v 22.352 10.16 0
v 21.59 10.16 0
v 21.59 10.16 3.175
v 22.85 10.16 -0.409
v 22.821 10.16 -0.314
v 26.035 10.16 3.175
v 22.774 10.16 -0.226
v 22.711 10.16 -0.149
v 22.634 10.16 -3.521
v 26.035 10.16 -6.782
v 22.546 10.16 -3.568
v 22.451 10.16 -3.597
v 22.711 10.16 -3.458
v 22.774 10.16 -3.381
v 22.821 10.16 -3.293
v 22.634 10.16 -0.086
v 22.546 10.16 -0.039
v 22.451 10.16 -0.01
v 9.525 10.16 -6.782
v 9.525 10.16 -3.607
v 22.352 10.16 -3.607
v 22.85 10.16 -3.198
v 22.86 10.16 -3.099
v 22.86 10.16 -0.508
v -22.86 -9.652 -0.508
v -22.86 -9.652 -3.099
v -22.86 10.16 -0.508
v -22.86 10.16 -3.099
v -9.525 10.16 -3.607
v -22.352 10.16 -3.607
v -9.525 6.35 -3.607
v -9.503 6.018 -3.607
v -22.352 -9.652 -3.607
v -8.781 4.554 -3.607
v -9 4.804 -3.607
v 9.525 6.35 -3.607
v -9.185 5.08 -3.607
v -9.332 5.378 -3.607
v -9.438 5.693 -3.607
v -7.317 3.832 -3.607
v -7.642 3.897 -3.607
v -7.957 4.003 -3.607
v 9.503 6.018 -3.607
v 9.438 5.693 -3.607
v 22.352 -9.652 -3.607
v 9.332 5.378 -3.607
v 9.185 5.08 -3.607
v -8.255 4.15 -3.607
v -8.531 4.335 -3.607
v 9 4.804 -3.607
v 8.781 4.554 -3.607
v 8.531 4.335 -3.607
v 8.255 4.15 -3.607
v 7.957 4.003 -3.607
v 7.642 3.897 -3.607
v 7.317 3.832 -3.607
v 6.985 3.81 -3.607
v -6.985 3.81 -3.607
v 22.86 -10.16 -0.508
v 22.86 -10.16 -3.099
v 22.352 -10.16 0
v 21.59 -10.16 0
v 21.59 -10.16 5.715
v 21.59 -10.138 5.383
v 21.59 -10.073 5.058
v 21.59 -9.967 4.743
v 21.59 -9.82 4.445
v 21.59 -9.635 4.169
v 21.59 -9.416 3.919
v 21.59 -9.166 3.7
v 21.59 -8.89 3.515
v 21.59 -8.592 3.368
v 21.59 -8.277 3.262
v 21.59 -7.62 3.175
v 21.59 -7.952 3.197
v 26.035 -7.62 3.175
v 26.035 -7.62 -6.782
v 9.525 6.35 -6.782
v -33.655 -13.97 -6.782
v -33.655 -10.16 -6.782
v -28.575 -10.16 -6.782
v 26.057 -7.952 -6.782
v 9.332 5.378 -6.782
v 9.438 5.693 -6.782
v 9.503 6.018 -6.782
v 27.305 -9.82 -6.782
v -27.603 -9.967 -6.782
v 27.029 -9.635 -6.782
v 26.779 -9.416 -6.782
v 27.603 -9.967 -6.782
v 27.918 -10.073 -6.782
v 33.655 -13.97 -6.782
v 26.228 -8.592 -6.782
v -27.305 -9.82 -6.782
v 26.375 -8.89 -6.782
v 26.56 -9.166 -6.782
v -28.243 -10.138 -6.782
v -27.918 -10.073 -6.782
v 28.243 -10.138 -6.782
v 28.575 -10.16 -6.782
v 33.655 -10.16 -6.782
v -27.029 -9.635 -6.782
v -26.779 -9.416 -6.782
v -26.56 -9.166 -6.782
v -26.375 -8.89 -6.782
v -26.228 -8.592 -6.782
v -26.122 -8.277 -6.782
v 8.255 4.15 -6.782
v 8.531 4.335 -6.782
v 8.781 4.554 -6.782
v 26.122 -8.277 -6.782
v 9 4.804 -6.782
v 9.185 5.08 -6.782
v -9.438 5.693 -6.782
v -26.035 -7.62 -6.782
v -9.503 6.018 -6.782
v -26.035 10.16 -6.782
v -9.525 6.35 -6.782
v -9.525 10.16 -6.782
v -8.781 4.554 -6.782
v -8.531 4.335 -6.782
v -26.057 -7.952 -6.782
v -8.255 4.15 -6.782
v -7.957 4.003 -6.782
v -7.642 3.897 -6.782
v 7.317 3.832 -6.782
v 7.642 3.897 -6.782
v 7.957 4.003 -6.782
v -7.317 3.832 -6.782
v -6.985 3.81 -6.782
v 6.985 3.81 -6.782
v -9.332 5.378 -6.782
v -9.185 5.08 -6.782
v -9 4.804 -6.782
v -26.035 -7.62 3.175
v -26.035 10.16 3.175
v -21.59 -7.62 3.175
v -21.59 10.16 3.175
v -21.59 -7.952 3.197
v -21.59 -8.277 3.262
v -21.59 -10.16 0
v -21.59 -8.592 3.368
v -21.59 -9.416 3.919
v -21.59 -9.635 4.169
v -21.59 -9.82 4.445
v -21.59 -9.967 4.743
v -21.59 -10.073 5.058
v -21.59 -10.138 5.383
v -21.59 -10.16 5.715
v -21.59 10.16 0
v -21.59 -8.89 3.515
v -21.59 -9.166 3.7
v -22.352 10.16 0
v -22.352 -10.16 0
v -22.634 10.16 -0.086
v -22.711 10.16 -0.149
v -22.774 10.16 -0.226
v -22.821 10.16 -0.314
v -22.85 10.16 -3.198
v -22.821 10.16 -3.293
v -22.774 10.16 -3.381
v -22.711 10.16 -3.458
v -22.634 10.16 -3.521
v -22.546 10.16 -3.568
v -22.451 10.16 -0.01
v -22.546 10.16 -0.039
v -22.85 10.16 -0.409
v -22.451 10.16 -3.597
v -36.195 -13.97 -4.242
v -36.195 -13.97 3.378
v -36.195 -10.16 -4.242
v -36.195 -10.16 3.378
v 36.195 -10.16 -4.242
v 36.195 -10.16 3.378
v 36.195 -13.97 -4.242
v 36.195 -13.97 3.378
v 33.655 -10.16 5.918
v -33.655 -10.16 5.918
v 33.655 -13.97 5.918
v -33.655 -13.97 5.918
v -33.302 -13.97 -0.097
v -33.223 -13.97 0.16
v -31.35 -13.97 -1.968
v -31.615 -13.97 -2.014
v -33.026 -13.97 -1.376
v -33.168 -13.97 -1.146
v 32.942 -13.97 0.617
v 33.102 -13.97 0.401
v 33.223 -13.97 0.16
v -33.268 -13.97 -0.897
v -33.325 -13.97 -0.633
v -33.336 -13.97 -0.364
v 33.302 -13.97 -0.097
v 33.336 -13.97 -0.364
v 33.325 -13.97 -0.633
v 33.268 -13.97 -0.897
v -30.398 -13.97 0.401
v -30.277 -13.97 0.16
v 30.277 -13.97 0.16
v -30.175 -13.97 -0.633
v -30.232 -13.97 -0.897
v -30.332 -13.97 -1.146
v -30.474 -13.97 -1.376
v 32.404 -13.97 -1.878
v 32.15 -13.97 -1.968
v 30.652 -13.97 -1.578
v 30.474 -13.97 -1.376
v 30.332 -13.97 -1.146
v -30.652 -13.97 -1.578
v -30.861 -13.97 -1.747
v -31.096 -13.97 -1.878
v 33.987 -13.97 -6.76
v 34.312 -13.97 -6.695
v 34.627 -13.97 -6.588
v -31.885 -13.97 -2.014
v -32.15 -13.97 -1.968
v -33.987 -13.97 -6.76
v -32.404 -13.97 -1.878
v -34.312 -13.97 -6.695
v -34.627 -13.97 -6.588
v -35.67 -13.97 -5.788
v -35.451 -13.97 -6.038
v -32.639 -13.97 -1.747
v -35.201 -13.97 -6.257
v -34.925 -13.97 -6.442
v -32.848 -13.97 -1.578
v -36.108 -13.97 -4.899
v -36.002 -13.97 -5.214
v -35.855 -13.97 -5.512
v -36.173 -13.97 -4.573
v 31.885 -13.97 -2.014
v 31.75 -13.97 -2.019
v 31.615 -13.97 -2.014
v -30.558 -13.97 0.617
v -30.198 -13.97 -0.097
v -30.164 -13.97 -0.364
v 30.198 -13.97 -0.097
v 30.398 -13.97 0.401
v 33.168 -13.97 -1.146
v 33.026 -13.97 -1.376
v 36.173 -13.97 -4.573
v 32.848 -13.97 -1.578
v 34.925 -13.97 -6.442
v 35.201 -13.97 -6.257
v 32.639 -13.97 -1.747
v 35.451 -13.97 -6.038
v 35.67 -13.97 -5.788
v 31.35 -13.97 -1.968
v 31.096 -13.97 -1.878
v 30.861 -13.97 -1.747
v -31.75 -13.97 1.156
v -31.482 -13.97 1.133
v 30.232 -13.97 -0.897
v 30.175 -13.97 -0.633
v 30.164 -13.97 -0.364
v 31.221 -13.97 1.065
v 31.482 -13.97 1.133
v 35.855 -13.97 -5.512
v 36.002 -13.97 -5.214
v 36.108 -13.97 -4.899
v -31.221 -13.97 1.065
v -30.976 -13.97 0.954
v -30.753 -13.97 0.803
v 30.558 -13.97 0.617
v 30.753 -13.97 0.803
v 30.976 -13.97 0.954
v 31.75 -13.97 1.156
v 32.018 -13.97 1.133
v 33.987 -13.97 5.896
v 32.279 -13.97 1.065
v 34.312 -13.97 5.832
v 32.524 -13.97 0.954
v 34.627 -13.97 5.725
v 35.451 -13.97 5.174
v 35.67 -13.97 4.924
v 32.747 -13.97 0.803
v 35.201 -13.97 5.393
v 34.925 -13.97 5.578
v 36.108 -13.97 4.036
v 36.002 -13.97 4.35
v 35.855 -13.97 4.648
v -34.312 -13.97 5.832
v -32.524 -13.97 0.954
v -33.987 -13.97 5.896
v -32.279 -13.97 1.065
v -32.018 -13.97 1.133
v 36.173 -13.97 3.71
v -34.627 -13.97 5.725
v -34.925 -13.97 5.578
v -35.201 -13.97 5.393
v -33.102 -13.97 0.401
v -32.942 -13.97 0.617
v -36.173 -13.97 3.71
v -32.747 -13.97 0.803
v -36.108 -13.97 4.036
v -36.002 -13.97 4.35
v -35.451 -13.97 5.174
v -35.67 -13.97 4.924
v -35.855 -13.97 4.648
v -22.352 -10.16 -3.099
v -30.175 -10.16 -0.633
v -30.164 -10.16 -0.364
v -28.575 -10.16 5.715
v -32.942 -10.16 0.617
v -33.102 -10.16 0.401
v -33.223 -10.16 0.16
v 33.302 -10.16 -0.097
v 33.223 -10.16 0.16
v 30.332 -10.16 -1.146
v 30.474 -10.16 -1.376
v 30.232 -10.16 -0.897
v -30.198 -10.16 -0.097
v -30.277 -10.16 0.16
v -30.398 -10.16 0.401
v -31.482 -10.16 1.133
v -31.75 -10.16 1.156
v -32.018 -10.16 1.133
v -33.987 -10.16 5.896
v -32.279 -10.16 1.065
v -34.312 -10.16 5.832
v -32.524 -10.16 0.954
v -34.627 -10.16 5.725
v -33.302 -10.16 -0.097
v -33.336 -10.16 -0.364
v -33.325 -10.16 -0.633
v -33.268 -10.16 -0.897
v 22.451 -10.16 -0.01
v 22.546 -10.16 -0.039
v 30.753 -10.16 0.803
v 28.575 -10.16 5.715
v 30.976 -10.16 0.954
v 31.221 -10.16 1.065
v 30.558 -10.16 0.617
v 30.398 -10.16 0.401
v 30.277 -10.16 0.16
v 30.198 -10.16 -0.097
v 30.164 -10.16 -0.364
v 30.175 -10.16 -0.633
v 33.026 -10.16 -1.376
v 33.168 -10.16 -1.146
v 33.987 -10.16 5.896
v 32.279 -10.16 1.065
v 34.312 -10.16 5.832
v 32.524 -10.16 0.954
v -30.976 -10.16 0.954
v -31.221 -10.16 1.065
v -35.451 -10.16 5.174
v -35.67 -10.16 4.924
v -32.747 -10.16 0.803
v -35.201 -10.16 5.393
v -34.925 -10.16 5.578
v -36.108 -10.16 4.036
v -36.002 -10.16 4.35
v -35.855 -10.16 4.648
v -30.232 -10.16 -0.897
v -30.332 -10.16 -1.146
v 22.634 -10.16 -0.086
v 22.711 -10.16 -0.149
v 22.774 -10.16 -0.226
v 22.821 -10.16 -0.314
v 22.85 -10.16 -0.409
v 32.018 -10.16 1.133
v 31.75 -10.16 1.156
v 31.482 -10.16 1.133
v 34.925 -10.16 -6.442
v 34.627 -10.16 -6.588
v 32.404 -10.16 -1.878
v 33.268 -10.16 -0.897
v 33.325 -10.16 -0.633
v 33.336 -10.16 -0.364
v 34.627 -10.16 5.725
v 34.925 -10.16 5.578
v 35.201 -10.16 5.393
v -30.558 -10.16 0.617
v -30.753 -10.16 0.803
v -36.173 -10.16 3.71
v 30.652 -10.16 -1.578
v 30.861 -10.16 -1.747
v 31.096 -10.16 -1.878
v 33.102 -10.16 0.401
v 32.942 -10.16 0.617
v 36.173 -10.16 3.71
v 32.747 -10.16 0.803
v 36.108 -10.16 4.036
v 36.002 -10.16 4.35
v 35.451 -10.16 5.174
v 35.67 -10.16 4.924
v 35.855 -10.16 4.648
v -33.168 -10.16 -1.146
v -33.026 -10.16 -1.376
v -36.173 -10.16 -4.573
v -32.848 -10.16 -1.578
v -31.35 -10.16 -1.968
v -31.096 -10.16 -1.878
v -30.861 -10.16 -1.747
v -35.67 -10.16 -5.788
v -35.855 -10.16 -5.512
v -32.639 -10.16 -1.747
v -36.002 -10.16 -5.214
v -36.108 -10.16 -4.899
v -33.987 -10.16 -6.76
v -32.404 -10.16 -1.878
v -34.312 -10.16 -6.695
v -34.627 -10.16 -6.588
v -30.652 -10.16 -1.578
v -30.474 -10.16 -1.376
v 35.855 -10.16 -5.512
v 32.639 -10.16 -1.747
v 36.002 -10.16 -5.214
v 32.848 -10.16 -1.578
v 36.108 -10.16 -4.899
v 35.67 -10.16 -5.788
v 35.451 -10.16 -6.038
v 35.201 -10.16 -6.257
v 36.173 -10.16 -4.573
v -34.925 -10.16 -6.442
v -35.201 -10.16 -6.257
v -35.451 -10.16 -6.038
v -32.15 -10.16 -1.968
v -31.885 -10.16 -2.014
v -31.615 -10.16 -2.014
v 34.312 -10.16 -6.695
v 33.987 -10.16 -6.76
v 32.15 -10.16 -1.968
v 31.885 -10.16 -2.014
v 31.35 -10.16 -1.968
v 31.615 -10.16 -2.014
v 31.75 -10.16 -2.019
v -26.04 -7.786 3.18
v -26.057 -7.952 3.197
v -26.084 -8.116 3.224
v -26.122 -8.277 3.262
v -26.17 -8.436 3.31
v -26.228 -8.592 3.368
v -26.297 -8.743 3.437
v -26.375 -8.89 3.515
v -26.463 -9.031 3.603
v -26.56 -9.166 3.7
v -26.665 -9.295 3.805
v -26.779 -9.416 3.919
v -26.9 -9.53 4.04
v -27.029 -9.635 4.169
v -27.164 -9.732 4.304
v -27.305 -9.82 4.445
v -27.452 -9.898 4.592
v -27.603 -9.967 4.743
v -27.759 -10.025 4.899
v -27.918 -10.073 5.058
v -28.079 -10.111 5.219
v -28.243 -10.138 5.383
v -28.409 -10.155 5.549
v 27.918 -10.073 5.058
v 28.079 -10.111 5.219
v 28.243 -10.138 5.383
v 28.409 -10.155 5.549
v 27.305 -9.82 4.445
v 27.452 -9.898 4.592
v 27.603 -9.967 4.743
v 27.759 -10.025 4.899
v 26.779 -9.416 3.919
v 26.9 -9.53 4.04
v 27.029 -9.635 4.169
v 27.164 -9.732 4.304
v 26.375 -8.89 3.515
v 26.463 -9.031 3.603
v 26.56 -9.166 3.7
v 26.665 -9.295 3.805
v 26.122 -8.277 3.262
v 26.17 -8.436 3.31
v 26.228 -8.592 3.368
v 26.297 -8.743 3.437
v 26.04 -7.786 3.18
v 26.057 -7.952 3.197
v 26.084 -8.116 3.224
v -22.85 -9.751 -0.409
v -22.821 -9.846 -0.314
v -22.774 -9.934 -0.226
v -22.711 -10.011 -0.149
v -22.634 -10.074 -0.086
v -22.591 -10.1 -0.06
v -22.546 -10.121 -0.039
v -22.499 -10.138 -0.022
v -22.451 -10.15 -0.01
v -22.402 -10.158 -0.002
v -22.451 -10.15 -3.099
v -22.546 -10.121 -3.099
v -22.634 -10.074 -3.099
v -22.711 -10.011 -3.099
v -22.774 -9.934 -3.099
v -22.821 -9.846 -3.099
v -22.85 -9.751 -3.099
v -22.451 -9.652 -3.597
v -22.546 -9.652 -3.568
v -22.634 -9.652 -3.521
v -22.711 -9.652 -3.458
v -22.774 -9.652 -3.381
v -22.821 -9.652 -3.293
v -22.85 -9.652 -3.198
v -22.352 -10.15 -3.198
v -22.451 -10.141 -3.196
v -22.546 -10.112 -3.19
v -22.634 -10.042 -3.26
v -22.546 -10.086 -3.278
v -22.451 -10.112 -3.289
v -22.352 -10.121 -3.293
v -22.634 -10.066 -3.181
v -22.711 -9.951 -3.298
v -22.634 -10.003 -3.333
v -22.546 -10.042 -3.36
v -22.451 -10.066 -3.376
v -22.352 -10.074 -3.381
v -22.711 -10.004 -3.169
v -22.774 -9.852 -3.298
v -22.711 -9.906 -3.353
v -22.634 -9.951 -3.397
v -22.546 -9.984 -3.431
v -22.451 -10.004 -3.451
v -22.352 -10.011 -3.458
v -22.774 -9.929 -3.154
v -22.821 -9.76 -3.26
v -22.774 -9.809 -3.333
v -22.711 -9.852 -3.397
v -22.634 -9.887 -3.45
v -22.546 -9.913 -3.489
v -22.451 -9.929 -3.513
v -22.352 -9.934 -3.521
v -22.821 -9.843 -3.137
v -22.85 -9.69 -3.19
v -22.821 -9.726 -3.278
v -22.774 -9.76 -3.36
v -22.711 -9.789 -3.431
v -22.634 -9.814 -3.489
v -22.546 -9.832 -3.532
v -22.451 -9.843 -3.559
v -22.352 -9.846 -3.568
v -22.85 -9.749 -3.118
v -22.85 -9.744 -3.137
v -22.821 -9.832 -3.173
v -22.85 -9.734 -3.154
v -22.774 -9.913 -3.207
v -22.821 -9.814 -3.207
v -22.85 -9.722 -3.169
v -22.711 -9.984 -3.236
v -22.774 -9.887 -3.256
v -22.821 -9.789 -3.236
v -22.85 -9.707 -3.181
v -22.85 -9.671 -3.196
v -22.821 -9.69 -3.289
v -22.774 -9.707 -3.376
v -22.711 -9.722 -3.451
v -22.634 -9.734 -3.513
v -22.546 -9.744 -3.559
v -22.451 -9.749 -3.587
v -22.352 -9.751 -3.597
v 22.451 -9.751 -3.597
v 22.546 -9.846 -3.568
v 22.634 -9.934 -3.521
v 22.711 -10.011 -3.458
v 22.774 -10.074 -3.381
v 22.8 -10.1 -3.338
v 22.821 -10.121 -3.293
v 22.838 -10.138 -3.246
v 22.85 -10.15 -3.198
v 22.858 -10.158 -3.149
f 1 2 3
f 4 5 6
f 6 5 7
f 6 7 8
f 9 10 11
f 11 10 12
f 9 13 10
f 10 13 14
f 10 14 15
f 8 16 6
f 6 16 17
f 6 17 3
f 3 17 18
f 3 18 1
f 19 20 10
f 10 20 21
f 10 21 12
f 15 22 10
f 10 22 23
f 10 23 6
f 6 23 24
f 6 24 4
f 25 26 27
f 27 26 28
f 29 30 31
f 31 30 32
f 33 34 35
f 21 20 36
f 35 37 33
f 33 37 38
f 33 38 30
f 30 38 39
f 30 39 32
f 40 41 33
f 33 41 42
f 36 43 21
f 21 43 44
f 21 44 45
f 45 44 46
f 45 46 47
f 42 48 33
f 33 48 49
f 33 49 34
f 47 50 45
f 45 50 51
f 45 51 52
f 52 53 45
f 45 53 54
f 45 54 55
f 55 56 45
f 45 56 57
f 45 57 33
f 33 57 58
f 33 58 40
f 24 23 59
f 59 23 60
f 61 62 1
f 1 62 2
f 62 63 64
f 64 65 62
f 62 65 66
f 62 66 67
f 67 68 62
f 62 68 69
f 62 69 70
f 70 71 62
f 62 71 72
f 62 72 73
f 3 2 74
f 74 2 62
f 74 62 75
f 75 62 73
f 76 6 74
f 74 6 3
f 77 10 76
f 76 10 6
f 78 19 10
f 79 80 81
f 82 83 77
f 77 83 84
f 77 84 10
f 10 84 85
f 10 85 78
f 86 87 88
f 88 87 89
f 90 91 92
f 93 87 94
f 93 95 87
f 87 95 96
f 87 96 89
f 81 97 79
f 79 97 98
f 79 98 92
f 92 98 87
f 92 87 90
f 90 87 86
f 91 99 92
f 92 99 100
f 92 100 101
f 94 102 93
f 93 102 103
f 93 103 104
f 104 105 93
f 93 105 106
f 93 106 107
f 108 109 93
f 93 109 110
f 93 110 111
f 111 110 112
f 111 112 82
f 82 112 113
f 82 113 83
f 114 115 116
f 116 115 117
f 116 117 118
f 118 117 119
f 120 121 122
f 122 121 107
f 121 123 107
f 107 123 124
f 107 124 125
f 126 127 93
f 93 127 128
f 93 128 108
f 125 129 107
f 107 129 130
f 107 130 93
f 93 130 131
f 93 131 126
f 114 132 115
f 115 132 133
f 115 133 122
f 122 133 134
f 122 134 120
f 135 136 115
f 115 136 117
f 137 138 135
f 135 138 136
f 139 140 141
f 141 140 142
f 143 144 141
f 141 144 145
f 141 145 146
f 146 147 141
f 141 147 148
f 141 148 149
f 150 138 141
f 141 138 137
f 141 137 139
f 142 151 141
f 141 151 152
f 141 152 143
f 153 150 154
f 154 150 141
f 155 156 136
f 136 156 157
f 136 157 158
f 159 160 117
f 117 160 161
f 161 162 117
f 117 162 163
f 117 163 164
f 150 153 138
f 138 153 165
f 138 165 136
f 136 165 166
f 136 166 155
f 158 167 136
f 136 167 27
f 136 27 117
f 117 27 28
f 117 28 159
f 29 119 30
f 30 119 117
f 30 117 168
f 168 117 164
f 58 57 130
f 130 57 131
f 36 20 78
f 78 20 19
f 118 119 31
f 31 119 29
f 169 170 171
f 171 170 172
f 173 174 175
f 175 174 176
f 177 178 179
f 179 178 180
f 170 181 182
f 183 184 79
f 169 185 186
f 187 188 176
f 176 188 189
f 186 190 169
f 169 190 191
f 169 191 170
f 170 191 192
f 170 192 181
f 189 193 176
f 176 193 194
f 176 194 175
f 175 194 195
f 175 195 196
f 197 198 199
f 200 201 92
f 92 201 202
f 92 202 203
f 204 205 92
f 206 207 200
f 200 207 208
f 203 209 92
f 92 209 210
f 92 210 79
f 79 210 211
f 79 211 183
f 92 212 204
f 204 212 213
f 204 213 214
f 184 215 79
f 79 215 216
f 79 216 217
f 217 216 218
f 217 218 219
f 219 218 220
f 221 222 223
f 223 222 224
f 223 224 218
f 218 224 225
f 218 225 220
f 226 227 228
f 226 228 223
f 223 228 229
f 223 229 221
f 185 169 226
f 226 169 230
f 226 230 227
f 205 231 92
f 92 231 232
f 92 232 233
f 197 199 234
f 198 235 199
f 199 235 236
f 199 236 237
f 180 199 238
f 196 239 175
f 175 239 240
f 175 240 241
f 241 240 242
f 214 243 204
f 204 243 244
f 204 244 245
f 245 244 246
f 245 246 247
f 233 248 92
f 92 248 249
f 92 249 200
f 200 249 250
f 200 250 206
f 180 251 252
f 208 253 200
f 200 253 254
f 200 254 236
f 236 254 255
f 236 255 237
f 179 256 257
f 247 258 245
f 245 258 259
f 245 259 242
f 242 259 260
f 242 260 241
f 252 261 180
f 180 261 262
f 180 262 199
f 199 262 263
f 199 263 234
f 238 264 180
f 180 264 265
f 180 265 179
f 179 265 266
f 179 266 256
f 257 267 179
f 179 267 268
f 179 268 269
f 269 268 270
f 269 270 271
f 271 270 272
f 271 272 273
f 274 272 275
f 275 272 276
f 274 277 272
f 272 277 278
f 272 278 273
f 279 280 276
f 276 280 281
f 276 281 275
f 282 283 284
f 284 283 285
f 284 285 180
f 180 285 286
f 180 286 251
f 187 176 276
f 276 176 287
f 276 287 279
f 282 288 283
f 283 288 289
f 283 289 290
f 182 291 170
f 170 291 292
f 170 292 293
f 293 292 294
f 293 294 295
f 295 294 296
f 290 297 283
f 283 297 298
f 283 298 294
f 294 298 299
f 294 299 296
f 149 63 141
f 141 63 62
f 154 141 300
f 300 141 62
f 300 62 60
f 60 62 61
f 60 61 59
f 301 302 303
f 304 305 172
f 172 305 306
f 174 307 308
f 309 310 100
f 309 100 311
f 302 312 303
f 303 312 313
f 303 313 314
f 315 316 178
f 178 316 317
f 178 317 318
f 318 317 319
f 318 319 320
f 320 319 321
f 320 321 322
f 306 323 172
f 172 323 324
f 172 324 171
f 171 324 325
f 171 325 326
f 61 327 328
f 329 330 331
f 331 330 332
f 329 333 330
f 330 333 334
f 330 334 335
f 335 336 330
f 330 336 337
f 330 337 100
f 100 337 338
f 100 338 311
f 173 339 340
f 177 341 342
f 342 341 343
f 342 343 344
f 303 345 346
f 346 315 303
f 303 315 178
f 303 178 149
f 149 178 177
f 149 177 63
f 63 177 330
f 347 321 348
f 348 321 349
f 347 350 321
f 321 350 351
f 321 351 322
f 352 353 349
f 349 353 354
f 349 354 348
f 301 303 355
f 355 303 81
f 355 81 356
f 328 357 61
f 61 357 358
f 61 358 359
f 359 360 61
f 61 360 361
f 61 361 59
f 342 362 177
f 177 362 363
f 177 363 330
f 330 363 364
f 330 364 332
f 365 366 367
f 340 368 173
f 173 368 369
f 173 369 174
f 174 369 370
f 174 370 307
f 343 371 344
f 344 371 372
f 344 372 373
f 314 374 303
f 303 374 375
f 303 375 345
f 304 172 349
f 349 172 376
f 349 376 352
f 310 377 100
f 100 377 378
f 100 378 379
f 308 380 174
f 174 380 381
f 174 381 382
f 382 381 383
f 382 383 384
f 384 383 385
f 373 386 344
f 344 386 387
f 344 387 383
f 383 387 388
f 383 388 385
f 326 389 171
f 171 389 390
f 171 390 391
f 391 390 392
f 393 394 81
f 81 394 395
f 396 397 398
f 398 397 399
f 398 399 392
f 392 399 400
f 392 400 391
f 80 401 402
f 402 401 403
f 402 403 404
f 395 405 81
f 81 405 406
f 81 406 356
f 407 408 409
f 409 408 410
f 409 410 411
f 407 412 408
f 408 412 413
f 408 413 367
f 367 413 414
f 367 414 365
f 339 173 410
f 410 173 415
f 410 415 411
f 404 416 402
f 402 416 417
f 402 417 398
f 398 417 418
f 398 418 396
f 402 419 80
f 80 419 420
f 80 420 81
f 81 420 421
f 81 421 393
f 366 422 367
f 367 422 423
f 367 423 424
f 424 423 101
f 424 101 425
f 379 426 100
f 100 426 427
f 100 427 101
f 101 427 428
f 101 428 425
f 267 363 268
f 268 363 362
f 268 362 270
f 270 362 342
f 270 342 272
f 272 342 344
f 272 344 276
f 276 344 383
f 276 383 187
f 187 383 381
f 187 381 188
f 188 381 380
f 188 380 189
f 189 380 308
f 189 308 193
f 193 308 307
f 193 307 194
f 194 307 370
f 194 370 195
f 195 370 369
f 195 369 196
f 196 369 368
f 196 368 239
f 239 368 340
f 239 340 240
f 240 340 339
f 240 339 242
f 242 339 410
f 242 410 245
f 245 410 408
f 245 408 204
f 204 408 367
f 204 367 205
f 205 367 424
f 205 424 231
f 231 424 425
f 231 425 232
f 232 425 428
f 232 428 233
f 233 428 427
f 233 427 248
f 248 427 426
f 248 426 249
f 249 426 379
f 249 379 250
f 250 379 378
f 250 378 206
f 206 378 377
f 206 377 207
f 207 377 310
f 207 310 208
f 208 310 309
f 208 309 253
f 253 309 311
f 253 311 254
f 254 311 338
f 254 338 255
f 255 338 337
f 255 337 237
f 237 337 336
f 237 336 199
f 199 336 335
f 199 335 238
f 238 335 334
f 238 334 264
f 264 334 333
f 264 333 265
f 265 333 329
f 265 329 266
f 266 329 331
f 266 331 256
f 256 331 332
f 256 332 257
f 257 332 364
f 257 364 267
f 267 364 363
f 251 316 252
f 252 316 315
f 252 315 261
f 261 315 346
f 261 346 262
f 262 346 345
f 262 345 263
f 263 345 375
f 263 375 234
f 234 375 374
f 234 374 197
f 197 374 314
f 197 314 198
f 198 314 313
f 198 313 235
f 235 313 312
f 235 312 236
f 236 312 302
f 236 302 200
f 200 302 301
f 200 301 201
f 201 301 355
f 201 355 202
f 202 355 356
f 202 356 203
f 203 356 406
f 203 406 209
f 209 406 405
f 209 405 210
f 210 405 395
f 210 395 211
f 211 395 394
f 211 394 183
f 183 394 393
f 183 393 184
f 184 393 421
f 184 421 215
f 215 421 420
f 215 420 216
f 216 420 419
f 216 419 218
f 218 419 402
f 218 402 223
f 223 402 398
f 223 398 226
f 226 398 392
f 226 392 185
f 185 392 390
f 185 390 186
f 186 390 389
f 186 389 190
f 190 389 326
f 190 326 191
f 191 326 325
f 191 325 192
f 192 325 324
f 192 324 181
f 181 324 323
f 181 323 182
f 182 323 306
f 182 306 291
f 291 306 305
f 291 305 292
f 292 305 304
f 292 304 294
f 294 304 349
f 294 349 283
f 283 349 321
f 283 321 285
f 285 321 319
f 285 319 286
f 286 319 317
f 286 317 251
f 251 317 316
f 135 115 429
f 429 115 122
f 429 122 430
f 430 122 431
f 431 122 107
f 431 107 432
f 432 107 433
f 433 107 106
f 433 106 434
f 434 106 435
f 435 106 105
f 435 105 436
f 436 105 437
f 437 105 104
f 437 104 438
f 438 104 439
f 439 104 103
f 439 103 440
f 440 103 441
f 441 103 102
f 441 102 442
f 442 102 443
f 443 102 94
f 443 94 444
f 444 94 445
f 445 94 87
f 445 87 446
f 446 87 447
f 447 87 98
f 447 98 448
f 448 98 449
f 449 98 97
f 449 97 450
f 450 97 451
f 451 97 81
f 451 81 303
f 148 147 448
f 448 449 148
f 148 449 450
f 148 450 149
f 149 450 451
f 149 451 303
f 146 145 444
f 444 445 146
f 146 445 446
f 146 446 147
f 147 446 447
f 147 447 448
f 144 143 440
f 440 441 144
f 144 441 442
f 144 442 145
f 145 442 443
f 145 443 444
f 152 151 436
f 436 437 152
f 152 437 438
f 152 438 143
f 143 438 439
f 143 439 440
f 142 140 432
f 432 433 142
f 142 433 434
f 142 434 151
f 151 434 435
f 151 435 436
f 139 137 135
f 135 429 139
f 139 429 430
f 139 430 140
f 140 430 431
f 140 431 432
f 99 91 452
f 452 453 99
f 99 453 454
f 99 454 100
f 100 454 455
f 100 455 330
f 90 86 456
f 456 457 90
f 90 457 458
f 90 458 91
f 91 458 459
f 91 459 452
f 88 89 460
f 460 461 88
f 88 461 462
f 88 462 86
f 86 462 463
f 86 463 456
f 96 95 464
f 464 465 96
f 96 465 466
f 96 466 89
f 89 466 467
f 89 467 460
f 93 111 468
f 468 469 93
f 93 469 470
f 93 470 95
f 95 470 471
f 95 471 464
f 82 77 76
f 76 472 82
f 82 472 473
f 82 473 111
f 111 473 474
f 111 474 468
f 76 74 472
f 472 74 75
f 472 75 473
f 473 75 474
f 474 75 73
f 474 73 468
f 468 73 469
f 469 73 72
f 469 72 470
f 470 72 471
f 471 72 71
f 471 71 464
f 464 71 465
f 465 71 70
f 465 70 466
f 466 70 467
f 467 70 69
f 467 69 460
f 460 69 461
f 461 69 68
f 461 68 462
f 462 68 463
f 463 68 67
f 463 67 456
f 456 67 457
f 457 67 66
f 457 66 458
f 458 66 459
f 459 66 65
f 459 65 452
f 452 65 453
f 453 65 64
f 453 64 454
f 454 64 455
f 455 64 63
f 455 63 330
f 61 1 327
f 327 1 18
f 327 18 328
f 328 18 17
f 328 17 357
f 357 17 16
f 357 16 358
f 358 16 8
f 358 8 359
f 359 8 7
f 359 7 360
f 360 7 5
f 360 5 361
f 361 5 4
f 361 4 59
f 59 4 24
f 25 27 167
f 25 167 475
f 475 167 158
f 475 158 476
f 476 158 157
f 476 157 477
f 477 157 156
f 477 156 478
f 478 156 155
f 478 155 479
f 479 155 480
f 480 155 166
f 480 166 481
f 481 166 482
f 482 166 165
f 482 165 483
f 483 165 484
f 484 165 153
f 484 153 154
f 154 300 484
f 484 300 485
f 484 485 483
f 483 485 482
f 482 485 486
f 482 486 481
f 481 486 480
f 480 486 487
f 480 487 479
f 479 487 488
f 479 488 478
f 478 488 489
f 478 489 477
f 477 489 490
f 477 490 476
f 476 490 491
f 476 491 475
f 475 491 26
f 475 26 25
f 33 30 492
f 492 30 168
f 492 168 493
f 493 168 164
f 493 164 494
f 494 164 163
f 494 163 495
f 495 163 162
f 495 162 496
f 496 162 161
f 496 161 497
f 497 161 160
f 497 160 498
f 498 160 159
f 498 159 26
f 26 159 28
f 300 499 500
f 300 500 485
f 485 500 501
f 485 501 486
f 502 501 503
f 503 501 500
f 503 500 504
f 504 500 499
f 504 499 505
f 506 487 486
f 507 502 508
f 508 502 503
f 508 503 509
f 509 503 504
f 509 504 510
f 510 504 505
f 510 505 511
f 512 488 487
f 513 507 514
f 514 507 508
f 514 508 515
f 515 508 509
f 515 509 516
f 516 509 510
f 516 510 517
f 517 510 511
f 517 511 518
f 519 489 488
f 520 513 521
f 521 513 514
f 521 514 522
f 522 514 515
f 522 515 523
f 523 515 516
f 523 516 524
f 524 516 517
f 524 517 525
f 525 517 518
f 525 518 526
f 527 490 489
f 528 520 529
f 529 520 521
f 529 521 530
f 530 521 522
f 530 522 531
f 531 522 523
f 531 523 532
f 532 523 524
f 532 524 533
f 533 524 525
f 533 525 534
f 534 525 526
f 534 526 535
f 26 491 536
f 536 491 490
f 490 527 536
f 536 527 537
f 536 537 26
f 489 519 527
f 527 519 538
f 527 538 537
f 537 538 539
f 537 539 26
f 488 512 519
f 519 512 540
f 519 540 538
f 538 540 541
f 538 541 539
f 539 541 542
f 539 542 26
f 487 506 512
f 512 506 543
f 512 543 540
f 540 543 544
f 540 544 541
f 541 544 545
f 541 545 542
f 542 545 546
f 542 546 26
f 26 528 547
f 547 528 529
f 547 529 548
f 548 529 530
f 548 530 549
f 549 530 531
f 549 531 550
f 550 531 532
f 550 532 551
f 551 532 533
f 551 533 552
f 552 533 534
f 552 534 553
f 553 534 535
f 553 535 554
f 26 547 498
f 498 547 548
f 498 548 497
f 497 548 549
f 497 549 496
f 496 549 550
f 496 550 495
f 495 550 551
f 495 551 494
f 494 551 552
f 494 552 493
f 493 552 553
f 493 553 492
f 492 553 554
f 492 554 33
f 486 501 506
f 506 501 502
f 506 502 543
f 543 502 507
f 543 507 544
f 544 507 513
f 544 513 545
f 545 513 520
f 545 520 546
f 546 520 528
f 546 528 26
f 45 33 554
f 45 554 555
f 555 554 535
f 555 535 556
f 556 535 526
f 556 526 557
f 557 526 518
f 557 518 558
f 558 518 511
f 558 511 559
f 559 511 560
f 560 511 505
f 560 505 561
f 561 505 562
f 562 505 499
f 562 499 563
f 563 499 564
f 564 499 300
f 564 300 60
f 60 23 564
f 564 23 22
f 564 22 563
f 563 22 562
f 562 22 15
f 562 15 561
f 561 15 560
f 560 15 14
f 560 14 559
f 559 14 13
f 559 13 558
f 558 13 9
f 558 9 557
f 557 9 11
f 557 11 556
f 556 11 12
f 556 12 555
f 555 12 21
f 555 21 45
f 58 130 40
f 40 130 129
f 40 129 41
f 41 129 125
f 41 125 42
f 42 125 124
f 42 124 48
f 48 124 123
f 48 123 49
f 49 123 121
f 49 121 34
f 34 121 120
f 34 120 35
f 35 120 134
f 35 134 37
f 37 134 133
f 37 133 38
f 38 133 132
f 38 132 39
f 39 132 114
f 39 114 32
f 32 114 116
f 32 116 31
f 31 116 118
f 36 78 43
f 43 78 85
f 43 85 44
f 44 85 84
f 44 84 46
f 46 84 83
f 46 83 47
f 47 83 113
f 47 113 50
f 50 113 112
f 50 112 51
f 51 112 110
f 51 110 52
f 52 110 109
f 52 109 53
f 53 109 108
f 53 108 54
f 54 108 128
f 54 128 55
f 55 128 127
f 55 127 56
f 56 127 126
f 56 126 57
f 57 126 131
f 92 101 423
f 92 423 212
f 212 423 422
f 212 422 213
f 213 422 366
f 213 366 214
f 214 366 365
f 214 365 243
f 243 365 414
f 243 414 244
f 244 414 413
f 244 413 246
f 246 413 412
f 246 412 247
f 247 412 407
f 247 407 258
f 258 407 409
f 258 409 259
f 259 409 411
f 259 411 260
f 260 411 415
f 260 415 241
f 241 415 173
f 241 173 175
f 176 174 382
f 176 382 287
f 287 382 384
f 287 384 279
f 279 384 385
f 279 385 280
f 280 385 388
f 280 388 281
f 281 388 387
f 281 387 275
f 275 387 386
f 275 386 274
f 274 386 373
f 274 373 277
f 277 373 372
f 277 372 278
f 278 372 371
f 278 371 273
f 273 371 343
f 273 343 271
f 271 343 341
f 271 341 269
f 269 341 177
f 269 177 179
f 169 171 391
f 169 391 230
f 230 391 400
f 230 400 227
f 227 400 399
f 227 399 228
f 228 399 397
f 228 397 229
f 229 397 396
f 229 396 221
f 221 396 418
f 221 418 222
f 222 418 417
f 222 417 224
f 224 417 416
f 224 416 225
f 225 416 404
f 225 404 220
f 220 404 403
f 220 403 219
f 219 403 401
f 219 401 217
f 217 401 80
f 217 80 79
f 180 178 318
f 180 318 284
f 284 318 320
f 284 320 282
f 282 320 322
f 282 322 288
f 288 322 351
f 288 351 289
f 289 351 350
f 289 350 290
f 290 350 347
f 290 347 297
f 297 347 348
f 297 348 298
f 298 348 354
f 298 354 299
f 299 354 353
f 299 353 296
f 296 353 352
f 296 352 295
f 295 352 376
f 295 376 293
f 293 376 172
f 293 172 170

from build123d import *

# Parameters (mm, degrees)
BOSS_EXTRUDE1_DEPTH = 10.16
SKETCH3_W           = 19.05
SKETCH3_H           = 6.35
CUT_EXTRUDE1_DEPTH  = 19.05
SKETCH4_W           = 72.39
SKETCH4_H           = 12.7
BOSS_EXTRUDE2_DEPTH = 3.81
SKETCH5_R           = 1.5875
CUT_EXTRUDE2_DEPTH  = 43.059163523
FILLET1_R           = 2.54
FILLET2_R           = 0.508
FILLET3_R           = 2.54
FILLET4_R           = 2.54


with BuildPart() as part:
    # Sketch2 → Boss-Extrude1 (new, symmetric)
    with BuildSketch(Plane(origin=(0, 0, 0), x_dir=(1, 0, 0), z_dir=(0, 1, 0))):
        Polygon((22.86, 3.6068), (-22.86, 3.6068), (-22.86, 0), (-21.59, 0), (-21.59, -3.175), (-26.035, -3.175), (-26.035, 6.7818), (26.035, 6.7818), (26.035, -3.175), (21.59, -3.175), (21.59, 0), (22.86, 0), align=None)
    extrude(amount=BOSS_EXTRUDE1_DEPTH, both=True)

    # Sketch3 → Cut-Extrude1 (cut)
    with BuildSketch(Plane.XY.offset(-3.6068)):
        with Locations((0, 6.985)):
            Rectangle(SKETCH3_W, SKETCH3_H)
    extrude(amount=-CUT_EXTRUDE1_DEPTH, mode=Mode.SUBTRACT)

    # Sketch4 → Boss-Extrude2 (add)
    with BuildSketch(Plane.XZ.offset(10.16)):
        with Locations((0, -0.4318)):
            Rectangle(SKETCH4_W, SKETCH4_H)
    extrude(amount=BOSS_EXTRUDE2_DEPTH)

    # Sketch5 → Cut-Extrude2 (cut, through all)
    with BuildSketch(Plane(origin=(0, -10.16, 0), x_dir=(1, 0, 0), z_dir=(0, 1, 0))):
        with Locations(Location((-31.75, 0.4318, 0), (0, 0, 270))):
            Circle(SKETCH5_R)
        with Locations(Location((31.75, 0.4318, 0), (0, 0, 90))):
            Circle(SKETCH5_R)
    extrude(amount=-CUT_EXTRUDE2_DEPTH, mode=Mode.SUBTRACT)

    # Fillet1
    fillet1_edges = [part.edges().sort_by_distance(p)[0] for p in [
        (-23.8125, -10.16, 3.175),
        (-26.035, -10.16, -1.8034),
        (26.035, -10.16, -1.8034),
        (23.8125, -10.16, 3.175),
    ]]
    fillet(fillet1_edges, radius=FILLET1_R)

    # Fillet2
    fillet2_edges = [part.edges().sort_by_distance(p)[0] for p in [
        (0, -10.16, -3.6068),
        (-22.86, -10.16, -1.8034),
        (-22.86, 0, 0),
        (22.86, 0, 0),
        (22.86, 0, -3.6068),
        (-22.86, 0, -3.6068),
    ]]
    fillet(fillet2_edges, radius=FILLET2_R)

    # Fillet3
    fillet3_edges = [part.edges().sort_by_distance(p)[0] for p in [
        (9.525, 3.81, -5.1943),
        (-9.525, 3.81, -5.1943),
    ]]
    fillet(fillet3_edges, radius=FILLET3_R)

    # Fillet4
    fillet4_edges = [part.edges().sort_by_distance(p)[0] for p in [
        (-36.195, -12.065, 5.9182),
        (-36.195, -12.065, -6.7818),
        (36.195, -12.065, -6.7818),
        (36.195, -12.065, 5.9182),
    ]]
    fillet(fillet4_edges, radius=FILLET4_R)


solid = part.part
